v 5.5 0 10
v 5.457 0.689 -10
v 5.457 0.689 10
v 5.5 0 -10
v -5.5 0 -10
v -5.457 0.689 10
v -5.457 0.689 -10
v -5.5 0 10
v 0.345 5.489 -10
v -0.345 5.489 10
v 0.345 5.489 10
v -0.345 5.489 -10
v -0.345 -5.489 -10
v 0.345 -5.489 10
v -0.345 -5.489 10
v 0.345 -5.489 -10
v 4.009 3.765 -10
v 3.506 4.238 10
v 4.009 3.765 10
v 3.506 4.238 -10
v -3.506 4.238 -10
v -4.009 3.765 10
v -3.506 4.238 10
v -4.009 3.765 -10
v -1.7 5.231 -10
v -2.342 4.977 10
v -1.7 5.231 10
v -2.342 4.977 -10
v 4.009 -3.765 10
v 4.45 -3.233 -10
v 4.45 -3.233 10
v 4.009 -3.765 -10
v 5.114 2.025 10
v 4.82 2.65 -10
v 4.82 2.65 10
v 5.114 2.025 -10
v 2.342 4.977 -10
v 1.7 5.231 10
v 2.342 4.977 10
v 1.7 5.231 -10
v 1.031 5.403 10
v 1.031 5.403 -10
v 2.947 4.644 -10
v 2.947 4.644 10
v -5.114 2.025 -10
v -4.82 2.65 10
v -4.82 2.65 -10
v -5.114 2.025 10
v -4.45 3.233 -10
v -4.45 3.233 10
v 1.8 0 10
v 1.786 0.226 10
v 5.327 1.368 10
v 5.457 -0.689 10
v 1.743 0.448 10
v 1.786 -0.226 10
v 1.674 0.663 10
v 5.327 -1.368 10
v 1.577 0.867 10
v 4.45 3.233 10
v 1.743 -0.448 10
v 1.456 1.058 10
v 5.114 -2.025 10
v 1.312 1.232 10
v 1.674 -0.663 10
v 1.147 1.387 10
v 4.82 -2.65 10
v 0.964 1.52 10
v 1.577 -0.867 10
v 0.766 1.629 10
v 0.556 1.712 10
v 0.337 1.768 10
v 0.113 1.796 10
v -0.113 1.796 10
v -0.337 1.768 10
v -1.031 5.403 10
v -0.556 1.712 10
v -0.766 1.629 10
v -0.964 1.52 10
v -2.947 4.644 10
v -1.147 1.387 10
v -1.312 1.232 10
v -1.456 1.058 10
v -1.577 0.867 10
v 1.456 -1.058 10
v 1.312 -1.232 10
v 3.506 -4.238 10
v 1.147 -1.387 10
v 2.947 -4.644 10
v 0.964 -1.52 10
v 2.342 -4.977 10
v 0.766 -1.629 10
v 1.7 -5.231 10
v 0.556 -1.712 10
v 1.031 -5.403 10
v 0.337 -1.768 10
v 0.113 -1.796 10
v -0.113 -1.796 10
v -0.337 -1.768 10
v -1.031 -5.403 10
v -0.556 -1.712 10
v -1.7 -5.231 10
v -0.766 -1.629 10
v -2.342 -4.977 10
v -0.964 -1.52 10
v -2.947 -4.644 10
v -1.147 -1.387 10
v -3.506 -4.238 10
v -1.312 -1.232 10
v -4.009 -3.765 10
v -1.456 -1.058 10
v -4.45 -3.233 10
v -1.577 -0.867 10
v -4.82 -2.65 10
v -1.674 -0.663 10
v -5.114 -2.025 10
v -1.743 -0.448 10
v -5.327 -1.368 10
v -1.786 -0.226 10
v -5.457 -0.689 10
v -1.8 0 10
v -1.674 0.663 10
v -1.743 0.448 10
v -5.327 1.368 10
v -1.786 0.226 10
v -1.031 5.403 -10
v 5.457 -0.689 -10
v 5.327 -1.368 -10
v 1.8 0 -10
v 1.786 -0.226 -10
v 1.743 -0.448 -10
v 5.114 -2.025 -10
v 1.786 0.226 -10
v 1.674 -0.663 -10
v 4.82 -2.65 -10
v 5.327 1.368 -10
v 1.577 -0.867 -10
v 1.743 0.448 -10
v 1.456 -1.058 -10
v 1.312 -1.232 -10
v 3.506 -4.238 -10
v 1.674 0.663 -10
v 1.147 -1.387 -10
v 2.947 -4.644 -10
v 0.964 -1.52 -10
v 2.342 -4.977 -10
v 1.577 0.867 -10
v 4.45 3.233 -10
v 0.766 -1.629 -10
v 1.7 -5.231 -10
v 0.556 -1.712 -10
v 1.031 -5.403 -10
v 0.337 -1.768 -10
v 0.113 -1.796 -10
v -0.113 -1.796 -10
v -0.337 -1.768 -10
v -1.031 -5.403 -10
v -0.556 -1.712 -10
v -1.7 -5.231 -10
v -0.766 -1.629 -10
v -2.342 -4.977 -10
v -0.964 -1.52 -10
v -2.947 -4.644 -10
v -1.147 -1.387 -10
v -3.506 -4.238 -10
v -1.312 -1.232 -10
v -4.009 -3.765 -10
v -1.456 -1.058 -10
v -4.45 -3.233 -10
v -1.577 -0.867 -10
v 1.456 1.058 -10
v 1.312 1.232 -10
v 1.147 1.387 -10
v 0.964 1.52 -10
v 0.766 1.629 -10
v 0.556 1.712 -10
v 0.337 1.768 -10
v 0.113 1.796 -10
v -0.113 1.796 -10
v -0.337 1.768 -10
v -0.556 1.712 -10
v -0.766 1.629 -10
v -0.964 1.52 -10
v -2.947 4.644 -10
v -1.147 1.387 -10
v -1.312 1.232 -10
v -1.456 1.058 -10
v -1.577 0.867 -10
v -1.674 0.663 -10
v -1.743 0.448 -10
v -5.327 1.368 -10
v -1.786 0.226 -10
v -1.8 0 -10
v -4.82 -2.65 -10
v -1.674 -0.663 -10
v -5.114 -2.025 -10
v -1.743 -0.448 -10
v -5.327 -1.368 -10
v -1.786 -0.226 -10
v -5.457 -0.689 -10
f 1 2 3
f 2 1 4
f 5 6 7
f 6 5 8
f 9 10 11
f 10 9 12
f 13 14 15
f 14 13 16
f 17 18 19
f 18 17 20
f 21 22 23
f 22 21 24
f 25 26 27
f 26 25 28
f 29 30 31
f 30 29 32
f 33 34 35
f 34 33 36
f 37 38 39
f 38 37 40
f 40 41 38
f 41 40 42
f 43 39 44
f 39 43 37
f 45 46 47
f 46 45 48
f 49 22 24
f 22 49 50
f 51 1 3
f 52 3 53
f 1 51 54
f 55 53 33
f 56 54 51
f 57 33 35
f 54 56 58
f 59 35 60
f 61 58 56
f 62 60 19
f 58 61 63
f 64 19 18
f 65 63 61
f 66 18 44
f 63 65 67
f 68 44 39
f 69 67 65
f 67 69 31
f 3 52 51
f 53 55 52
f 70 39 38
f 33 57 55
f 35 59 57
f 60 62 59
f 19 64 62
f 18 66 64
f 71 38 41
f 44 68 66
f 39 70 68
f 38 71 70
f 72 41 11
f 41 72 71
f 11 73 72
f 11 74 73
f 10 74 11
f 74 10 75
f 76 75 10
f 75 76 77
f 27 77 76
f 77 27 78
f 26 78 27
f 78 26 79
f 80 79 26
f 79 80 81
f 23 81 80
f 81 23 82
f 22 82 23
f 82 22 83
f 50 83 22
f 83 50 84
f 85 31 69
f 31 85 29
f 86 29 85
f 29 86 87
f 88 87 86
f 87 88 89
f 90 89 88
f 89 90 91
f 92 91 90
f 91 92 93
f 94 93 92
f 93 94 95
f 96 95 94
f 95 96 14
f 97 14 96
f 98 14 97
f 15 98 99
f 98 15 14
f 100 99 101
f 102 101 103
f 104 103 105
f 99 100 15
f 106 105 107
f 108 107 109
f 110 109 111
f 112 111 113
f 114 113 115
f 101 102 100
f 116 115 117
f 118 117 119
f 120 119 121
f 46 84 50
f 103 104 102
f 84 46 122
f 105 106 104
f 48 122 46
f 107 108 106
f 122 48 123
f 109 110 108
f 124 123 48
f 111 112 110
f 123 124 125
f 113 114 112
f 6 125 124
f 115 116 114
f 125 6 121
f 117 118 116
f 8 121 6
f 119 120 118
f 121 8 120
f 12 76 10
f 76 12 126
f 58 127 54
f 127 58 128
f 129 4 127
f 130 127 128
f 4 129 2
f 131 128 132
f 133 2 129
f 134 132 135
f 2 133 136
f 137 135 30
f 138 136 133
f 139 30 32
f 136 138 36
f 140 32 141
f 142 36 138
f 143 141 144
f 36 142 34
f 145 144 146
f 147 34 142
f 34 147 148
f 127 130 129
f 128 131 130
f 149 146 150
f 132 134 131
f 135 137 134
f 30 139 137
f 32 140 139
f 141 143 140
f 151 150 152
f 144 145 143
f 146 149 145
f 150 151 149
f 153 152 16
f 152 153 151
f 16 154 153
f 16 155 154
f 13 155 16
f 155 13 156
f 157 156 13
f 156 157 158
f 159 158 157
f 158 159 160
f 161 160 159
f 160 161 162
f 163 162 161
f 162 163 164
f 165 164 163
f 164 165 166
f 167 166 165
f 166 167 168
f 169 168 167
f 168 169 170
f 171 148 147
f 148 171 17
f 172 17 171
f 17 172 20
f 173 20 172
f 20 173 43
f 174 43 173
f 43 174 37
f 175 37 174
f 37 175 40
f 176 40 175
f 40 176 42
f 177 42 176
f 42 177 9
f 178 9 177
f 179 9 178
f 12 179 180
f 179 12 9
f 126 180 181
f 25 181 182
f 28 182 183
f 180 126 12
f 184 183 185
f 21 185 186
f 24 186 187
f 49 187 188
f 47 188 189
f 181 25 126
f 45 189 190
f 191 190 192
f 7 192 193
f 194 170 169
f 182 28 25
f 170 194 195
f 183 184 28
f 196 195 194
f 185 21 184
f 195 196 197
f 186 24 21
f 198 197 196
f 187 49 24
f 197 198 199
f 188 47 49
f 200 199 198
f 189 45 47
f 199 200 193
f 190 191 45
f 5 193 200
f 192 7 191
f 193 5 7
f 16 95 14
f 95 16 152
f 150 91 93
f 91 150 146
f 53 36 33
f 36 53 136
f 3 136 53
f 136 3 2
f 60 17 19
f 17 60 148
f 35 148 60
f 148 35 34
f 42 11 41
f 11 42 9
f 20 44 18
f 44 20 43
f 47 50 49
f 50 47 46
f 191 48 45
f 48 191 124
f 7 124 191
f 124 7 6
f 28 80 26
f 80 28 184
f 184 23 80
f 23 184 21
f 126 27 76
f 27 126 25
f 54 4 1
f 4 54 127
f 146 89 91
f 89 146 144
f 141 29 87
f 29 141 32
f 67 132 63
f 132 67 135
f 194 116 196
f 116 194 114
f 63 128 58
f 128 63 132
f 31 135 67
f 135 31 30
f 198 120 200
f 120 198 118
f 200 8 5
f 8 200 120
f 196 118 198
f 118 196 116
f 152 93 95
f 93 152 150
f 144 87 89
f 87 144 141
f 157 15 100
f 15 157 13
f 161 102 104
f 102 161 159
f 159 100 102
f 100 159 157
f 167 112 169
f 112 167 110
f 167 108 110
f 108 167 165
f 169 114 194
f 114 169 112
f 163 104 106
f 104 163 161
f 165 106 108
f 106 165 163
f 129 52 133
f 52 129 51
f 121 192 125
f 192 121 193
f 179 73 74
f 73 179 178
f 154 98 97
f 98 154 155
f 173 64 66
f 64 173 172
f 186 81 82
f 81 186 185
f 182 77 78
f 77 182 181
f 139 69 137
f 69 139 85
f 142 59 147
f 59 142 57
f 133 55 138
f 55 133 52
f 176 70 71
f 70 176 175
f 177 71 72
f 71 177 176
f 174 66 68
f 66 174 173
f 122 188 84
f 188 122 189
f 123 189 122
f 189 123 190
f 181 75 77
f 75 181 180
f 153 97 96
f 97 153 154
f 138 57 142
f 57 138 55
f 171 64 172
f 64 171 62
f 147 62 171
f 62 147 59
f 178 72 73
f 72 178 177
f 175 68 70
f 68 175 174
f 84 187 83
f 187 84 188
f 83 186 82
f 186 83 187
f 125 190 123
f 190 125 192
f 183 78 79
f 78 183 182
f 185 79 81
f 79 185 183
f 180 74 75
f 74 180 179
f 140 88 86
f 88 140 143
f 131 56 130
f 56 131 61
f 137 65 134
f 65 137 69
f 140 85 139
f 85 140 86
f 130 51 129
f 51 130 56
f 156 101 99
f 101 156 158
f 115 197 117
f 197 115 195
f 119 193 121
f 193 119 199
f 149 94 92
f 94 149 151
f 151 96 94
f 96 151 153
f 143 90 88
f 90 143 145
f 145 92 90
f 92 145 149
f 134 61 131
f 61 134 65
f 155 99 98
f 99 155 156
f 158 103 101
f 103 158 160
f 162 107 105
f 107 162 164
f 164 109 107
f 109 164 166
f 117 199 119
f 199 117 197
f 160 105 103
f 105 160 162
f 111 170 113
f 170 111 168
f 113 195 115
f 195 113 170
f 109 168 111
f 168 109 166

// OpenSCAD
$fn = 50;


difference() {
	union() {
		translate(v = [0, 0, -10.0000000000]) {
			cylinder(h = 20, r = 5.5000000000);
		}
	}
	union() {
		translate(v = [0, 0, -100.0000000000]) {
			cylinder(h = 200, r = 1.8000000000);
		}
	}
}
